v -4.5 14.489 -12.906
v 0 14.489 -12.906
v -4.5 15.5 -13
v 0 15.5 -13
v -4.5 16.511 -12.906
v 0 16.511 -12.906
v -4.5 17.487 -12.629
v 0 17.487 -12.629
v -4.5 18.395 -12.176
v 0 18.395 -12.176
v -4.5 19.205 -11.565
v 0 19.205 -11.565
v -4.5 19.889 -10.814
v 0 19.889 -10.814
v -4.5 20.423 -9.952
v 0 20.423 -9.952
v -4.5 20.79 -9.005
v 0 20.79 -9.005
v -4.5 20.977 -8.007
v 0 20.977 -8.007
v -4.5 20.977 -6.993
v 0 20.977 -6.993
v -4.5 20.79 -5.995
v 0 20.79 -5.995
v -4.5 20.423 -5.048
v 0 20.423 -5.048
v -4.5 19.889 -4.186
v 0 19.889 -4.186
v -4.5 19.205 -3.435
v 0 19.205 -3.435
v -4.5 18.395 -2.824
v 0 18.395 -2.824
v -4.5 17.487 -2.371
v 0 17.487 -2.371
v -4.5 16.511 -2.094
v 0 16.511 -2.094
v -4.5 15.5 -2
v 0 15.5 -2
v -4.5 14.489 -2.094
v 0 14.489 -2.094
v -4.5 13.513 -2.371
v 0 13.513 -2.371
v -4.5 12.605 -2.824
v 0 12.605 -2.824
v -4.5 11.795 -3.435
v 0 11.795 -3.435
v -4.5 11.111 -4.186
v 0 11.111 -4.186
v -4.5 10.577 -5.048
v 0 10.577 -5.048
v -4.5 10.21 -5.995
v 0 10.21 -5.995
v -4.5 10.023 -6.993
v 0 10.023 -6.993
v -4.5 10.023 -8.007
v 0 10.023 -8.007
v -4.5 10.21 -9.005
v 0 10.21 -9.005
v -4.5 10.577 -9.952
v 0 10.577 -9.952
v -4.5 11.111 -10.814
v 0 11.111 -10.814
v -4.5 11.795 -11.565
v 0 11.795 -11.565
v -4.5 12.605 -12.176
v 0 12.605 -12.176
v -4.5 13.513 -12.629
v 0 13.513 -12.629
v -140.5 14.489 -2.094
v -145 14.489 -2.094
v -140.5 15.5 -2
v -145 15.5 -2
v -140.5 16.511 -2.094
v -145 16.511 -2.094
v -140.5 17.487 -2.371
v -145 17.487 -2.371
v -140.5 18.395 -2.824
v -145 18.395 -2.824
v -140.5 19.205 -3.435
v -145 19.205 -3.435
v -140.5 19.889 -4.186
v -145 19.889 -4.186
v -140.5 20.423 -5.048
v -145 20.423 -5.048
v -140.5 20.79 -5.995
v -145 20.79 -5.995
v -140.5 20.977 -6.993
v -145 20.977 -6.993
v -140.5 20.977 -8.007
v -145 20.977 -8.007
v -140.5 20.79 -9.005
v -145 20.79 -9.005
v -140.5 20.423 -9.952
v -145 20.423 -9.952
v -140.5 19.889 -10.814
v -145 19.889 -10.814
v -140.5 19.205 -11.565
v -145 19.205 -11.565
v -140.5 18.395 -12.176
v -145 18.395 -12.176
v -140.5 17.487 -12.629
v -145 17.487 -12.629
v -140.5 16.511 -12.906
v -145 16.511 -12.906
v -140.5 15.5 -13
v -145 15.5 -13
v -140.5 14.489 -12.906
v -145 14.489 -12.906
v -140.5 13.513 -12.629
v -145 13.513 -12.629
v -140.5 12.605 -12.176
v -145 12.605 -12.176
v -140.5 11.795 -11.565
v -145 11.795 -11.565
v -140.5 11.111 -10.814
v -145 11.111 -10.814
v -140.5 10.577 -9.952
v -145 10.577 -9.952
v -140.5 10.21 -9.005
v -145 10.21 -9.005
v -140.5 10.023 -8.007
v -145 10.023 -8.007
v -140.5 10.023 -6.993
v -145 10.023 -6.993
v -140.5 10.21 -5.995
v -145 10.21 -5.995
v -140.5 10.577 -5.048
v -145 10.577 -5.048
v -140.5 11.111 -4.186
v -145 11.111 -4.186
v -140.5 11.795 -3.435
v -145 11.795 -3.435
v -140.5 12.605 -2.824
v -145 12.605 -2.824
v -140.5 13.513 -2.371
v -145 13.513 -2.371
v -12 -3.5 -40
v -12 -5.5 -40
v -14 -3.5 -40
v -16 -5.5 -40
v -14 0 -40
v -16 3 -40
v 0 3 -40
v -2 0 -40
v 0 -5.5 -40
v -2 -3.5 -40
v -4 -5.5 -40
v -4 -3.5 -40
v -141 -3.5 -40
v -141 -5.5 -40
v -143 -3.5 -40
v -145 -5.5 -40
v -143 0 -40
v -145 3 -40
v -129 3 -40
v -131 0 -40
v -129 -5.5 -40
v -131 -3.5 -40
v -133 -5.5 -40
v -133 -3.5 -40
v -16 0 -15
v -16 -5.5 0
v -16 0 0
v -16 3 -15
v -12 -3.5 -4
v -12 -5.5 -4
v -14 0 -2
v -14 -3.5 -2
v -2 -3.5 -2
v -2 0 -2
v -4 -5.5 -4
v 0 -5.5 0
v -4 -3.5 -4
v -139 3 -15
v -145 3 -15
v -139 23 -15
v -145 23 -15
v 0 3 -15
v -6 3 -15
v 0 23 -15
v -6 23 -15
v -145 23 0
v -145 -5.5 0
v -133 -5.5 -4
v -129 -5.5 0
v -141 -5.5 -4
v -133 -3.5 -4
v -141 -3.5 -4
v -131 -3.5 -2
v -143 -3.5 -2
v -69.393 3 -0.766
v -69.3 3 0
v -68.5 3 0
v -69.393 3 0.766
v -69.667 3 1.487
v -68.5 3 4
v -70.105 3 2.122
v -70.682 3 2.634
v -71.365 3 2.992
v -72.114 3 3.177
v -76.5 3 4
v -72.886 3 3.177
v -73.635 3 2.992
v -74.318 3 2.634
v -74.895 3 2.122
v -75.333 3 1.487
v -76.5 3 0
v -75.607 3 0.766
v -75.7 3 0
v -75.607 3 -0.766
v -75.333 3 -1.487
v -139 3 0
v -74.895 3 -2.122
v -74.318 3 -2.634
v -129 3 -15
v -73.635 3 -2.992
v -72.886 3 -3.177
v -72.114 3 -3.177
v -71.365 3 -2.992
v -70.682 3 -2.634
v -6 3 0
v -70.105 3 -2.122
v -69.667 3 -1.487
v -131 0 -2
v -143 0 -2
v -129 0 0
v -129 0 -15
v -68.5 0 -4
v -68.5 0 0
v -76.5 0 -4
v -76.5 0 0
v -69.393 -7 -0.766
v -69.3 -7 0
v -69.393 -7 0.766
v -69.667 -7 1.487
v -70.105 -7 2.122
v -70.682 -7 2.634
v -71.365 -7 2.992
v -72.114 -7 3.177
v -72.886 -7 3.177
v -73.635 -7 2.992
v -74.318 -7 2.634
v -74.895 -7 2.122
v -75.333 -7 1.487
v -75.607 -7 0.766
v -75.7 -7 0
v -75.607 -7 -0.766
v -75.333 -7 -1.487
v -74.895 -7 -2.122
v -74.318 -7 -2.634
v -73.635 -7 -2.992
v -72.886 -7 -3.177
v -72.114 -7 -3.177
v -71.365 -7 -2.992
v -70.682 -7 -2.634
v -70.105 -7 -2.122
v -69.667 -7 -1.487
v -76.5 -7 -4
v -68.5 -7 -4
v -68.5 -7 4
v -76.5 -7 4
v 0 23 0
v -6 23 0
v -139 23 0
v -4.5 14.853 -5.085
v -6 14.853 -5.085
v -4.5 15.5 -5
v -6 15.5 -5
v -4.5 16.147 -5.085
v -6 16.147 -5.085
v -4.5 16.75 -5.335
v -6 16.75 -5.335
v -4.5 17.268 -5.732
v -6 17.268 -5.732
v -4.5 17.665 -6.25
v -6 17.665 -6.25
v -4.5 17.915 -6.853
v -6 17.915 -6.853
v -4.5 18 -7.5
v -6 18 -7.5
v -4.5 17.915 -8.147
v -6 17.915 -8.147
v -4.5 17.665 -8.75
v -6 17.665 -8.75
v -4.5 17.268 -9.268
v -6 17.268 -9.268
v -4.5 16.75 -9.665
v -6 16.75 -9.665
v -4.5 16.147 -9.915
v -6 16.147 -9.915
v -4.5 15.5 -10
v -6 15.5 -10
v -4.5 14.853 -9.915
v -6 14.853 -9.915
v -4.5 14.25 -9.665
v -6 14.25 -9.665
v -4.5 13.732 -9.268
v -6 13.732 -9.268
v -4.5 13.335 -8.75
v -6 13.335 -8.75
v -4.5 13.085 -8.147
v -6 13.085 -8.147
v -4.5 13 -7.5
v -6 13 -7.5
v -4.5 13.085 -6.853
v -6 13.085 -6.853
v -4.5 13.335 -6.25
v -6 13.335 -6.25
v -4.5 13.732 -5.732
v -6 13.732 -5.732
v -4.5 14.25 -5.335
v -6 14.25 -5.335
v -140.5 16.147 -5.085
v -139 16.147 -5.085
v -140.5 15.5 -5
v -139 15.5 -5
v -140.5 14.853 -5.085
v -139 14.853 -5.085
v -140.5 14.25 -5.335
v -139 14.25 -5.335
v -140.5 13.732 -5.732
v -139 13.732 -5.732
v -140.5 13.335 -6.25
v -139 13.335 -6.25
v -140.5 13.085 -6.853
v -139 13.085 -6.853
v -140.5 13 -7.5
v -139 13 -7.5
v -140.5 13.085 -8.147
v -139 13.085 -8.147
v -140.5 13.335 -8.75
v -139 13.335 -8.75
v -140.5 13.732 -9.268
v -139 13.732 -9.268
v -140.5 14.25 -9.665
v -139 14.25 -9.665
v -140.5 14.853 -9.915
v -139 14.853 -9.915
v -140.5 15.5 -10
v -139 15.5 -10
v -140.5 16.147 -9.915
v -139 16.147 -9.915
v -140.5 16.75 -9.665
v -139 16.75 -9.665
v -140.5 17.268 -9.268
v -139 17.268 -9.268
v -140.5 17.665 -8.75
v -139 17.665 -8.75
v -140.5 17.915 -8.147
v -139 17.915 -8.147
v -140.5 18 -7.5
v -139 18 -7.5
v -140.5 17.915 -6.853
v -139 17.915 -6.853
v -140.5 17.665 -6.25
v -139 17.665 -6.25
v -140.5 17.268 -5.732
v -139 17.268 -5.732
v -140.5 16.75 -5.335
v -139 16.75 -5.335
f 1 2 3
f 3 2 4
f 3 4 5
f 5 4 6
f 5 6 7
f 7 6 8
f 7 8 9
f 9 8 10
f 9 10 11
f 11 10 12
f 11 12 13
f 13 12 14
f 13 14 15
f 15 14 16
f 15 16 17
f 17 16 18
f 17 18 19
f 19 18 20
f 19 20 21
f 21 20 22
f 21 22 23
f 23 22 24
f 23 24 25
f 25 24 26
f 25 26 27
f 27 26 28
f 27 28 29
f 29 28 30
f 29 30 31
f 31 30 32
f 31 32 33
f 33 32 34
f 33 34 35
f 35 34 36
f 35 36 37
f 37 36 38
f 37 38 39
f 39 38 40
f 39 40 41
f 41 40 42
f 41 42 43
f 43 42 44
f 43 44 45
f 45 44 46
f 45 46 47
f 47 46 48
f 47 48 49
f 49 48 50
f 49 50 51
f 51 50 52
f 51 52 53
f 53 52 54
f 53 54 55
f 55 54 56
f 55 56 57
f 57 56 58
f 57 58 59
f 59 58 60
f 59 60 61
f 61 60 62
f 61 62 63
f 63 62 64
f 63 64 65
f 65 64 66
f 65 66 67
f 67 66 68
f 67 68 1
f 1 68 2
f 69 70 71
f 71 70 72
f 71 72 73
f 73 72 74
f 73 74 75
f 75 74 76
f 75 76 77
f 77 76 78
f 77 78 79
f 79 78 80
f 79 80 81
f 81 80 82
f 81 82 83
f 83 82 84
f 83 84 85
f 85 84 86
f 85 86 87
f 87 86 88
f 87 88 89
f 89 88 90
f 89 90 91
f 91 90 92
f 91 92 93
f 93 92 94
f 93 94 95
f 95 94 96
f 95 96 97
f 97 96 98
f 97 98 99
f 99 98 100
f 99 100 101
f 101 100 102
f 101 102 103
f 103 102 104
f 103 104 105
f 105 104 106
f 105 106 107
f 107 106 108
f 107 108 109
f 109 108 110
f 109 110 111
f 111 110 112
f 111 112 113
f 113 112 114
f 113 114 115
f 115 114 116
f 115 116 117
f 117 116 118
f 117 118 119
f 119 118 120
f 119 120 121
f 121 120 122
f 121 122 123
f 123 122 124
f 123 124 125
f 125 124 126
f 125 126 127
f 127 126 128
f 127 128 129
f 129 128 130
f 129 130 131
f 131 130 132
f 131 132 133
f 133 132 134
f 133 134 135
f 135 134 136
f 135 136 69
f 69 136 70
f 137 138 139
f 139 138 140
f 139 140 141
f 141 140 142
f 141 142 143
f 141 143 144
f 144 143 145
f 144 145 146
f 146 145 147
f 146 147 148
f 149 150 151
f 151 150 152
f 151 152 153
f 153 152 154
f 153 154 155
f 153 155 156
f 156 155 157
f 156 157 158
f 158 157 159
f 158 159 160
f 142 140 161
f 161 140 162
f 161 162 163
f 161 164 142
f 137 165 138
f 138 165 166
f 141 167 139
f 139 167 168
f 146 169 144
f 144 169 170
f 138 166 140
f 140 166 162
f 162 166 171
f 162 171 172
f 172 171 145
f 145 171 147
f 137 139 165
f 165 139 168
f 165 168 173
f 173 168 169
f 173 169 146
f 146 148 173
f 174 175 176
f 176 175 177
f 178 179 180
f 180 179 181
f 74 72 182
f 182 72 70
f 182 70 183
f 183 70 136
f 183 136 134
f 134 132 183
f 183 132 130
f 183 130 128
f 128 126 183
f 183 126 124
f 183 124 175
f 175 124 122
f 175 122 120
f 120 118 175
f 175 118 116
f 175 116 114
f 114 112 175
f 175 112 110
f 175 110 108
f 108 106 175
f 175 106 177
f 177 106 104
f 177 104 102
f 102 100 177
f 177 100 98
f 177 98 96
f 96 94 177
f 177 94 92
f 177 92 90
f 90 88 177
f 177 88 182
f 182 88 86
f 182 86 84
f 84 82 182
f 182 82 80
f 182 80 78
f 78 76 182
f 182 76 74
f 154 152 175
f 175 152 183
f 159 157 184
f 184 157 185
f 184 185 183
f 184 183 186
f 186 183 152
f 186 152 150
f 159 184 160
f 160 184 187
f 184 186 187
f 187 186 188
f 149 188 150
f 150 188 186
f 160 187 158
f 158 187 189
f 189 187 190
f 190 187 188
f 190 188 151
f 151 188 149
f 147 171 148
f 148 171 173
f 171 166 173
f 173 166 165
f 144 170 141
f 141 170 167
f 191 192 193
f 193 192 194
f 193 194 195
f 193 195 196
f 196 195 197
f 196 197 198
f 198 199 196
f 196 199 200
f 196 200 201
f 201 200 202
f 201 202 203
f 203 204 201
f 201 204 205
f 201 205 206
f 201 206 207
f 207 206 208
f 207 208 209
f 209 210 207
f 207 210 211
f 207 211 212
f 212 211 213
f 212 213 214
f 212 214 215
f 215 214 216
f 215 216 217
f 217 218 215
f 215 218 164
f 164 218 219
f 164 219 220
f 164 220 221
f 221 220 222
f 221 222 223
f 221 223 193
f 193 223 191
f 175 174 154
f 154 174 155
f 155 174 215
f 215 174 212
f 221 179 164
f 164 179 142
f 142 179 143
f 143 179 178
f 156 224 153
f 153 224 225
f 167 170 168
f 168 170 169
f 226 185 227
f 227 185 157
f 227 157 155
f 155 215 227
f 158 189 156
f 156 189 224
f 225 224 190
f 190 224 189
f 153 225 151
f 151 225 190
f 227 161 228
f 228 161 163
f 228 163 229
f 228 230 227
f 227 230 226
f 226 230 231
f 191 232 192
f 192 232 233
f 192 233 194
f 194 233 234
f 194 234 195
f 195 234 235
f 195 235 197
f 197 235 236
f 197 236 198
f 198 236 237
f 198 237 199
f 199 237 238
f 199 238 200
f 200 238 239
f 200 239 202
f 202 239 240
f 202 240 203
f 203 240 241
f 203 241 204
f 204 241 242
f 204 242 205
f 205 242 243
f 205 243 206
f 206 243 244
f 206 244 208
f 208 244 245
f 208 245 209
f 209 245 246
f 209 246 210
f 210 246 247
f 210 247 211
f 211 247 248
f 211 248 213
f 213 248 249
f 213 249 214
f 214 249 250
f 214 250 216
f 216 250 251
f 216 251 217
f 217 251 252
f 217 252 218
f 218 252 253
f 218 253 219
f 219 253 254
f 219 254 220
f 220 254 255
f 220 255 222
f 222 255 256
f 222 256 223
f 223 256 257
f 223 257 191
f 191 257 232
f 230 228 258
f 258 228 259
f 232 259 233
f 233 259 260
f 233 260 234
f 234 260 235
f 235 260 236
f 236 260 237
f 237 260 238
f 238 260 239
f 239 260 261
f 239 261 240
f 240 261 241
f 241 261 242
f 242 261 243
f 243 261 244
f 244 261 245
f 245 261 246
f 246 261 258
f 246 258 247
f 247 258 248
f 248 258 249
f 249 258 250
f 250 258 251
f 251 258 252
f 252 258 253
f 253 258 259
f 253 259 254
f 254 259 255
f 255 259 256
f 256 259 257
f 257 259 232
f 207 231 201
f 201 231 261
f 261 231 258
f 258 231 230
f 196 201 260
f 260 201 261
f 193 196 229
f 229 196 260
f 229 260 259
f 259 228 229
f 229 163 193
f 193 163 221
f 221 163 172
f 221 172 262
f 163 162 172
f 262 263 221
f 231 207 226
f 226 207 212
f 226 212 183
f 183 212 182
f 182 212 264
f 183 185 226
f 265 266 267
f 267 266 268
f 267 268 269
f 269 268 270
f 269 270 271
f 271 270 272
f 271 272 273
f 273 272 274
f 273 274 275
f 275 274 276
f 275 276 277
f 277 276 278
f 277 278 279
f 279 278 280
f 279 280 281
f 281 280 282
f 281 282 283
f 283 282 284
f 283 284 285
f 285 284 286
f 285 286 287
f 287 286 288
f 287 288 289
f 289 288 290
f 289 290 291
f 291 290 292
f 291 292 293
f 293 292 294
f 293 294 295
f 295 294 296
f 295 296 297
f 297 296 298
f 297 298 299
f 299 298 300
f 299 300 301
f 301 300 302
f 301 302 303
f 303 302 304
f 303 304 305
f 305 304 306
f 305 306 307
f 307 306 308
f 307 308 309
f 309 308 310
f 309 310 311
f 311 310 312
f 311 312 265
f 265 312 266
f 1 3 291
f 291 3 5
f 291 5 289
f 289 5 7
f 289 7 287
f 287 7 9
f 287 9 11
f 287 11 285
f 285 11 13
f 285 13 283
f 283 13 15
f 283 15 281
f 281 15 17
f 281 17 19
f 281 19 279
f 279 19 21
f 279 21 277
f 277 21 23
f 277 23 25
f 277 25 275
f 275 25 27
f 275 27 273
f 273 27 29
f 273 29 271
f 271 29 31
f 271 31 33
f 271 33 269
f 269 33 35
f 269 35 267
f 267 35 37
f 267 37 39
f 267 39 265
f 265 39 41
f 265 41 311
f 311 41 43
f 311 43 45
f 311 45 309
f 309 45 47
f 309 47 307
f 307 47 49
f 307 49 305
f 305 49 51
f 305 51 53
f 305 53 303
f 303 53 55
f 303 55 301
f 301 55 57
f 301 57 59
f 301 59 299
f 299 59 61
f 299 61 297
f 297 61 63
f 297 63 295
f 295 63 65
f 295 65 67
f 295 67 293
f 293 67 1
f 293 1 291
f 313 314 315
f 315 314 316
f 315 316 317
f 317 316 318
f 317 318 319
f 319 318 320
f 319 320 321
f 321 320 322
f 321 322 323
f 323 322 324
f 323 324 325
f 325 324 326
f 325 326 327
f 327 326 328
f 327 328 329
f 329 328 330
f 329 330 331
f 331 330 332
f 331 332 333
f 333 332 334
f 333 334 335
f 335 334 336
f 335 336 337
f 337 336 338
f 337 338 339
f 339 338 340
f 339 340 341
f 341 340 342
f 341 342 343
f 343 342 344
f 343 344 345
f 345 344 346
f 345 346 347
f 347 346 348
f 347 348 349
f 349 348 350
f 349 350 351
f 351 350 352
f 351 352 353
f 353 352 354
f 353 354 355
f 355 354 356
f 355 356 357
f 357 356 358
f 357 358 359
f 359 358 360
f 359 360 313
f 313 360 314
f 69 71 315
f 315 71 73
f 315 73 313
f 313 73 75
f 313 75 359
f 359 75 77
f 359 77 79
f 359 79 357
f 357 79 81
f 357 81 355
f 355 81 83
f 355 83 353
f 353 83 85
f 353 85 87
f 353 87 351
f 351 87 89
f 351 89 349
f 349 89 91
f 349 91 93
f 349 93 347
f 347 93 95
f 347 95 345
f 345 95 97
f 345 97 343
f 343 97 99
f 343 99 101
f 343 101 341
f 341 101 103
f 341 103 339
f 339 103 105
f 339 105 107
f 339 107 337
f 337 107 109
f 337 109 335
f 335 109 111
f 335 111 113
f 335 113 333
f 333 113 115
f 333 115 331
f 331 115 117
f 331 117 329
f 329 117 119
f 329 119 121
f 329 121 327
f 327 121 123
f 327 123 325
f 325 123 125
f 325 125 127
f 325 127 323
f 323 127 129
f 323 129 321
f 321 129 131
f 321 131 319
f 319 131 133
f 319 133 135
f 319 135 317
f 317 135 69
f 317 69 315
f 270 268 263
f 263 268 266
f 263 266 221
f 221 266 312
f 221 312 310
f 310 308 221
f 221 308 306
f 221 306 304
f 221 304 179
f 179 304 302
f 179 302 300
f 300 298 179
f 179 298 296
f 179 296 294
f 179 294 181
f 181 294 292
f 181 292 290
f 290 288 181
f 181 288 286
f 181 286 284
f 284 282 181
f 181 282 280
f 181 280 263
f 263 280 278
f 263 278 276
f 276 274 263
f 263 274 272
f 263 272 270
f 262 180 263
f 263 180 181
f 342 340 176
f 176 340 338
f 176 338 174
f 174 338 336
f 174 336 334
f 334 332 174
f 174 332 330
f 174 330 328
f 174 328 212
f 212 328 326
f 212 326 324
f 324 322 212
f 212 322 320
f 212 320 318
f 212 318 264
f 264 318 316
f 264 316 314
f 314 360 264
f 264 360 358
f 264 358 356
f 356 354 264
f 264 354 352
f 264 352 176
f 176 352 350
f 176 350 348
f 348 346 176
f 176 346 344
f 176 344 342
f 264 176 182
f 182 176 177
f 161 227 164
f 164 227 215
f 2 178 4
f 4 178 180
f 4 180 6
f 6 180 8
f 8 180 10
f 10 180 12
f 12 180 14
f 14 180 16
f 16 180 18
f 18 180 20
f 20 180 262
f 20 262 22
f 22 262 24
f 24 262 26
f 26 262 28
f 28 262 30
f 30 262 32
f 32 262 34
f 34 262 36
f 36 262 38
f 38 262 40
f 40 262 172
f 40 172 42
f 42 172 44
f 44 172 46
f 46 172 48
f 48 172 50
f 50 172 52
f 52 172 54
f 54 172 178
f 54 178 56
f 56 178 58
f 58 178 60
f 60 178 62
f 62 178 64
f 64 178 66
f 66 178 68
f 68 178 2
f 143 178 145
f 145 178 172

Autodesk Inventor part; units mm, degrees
ref_plane "YZ Plane" through (0, 0, 0) normal (1, 0, 0) x (0, 1, 0)
ref_plane "XZ Plane" through (0, 0, 0) normal (0, 1, 0) x (-1, 0, 0)
ref_plane "XY Plane" through (0, 0, 0) normal (0, 0, 1) x (1, 0, 0)
sketch "Sketch1" plane through (0, 0, 0) normal (0, 1, 0) x (-1, 0, 0)
  line L0 (0, 0) -> (145, 0)
  line L1 (145, 0) -> (145, -15)
  line L2 (145, -15) -> (0, -15)
  line L3 (0, -15) -> (0, 0)
  dimension "d0" = 145
  dimension "d1" = 15
extrude "Extrusion1" add sketch "Sketch1" along normal blind 3
sketch "Sketch2" plane through (0, 3, 0) normal (0, 1, 0) x (1, 0, 0)
  line L0 (-145, 0) -> (0, 0) projected
  line L1 (0, 15) -> (-145, 15) projected
  line L2 (-145, 0) -> (-139, 0)
  line L3 (-139, 0) -> (-139, 15)
  line L4 (-139, 15) -> (-145, 15)
  line L5 (-145, 15) -> (-145, 0)
  line L6 (0, 0) -> (-6, 0)
  line L7 (-6, 0) -> (-6, 15)
  line L8 (-6, 15) -> (0, 15)
  line L9 (0, 15) -> (0, 0)
  dimension "d4" = 6
  dimension "d5" = 6
extrude "Extrusion2" add sketch "Sketch2" along normal blind 20 contours L5 L1 L3 L0 | L7 L1 L9 L0
sketch "Sketch3" plane through (0, 0, 0) normal (1, 0, 0) x (0, 0, -1)
  line L0 (0, 3) -> (15, 3) construction
  line L1 (7.5, 3) -> (7.5, 15.5) construction
  circle A0 centre (7.5, 15.5) radius 5
  point P0 (0, 0)
  dimension "d8" = 12.5
  dimension "d9" = 10
extrude "Extrusion3" cut sketch "Sketch3" against normal blind 156
sketch "Sketch4" plane through (-139, 3, 0) normal (1, 0, 0) x (0, 0, -1)
  circle A0 centre (7.5, 12.5) radius 5 projected
  circle A1 centre (7.5, 12.5) radius 5
  circle A2 centre (7.5, 12.5) radius 5 projected
  circle A3 centre (7.5, 12.5) radius 2.5
  point P0 (0, -3)
  dimension "d12" = 5
extrude "Extrusion4" add sketch "Sketch4" against normal blind 1.5
sketch "Sketch5" plane through (-6, 3, -15) normal (-1, 0, 0) x (0, 0, 1)
  circle A0 centre (7.5, 12.5) radius 2.5 projected
  circle A1 centre (7.5, 12.5) radius 5
  circle A2 centre (7.5, 12.5) radius 2.4999
  point P0 (15, -3)
extrude "Extrusion5" add sketch "Sketch5" against normal blind 1.5
sketch "Sketch6" plane through (0, 3, 0) normal (0, 1, 0) x (1, 0, 0)
  line L0 (0, 0) -> (-145, 0) projected
  line L1 (-72.5, 0) -> (-76.5, 0)
  line L2 (-76.5, 0) -> (-76.5, -4)
  line L3 (-76.5, -4) -> (-72.5, -4)
  line L4 (-72.5, -4) -> (-72.5, 0)
  line L5 (-72.5, 0) -> (-68.5, 0)
  line L6 (-68.5, 0) -> (-68.5, -4)
  line L7 (-68.5, -4) -> (-72.5, -4)
  line L8 (-72.5, -4) -> (-72.5, 0)
  dimension "d17" = 4
  dimension "d18" = 4
  dimension "d19" = 4
extrude "Extrusion6" add sketch "Sketch6" against normal blind 3
sketch "Sketch7" plane through (0, 3, 0) normal (0, 1, 0) x (1, 0, 0)
  circle A0 centre (-72.5, 0) radius 3.2
  line L0 (-68.5, 0) -> (-68.5, -4) projected
  line L1 (-68.5, -4) -> (-76.5, -4)
  line L2 (-76.5, -4) -> (-76.5, 4)
  line L3 (-76.5, 4) -> (-68.5, 4)
  line L4 (-68.5, 4) -> (-68.5, -4)
  point P0 (0, 0)
  dimension "d22" = 6.4
  dimension "d23" = 8
extrude "Extrusion7" add sketch "Sketch7" against normal blind 10
sketch "Sketch8" plane through (-72.5, 0, 0) normal (0, -1, 0) x (1, 0, 0)
  point P0 (72.5, 0)
sketch "Sketch9" plane through (-72.5, 0, 0) normal (0, -1, 0) x (1, 0, 0)
  circle A0 centre (0, 0) radius 3.2
  point P0 (72.5, 0)
extrude "Extrusion8" cut sketch "Sketch9" against normal blind 7.5
sketch "Sketch10" plane through (0, 0, 0) normal (0, -1, 0) x (1, 0, 0)
  line L0 (0, 0) -> (0, -15) construction
  line L1 (0, 0) -> (-16, 0) construction
  line L2 (-16, 0) -> (-16, -25) construction
  line L3 (-16, -25) -> (0, -25) construction
  line L4 (0, -25) -> (0, 0) construction
  line L5 (-145, -15) -> (-145, 0) construction
  line L6 (-145, 0) -> (-129, 0) construction
  line L7 (-129, 0) -> (-129, -25) construction
  line L8 (-129, -25) -> (-145, -25) construction
  line L9 (-145, -25) -> (-145, 0) construction
  line L10 (0, -25) -> (-2, -25)
  line L11 (-2, -25) -> (-2, -2)
  line L12 (-2, -2) -> (-14, -2)
  line L13 (-14, -2) -> (-14, -25)
  line L14 (-16, -25) -> (-16, 0)
  line L15 (-68.5, 0) -> (-6, 0) projected
  line L16 (-6, 0) -> (0, 0) projected
  line L17 (0, 0) -> (-16, 0)
  line L18 (0, -25) -> (0, 0)
  line L19 (0, -2.5) -> (-4.5, -2.5) projected
  line L20 (-129, -25) -> (-129, 0)
  line L21 (-145, 0) -> (-139, 0) projected
  line L22 (-145, 0) -> (-145, -25)
  line L23 (-145, -25) -> (-143, -25)
  line L24 (-143, -25) -> (-143, -2)
  line L25 (-143, -2) -> (-131, -2)
  line L26 (-131, -2) -> (-131, -25)
  line L27 (-129, -25) -> (-131, -25)
  line L28 (-14, -25) -> (-16, -25)
  line L29 (-129, 0) -> (-145, 0)
  dimension "d28" = 16
  dimension "d29" = 25
  dimension "d30" = 16
  dimension "d31" = 25
  dimension "d32" = 2
  dimension "d33" = 23
  dimension "d34" = 12
  dimension "d35" = 2
  dimension "d36" = 23
  dimension "d37" = 12
extrude "Extrusion9" add sketch "Sketch10" along normal blind 3.5
sketch "Sketch11" plane through (0, 0, 0) normal (0, 1, 0) x (1, 0, 0)
  line L0 (0, 25) -> (0, 0) projected
  line L1 (-16, 0) -> (-16, 25) projected
  line L2 (0, 25) -> (-16, 25)
  line L3 (-16, 25) -> (-16, 15.0002)
  line L4 (-16, 15.0002) -> (0, 15.0002)
  line L5 (0, 15.0002) -> (0, 25)
  line L6 (-131, 25) -> (-129, 25) projected
  line L7 (-145, 0) -> (-145, 25) projected
  line L8 (-129, 25) -> (-145, 25)
  line L9 (-145, 25) -> (-145, 15.0002)
  line L10 (-145, 15.0002) -> (-129, 15.0002)
  line L11 (-129, 15.0002) -> (-129, 25)
extrude "Extrusion10" add sketch "Sketch11" along normal blind 3
sketch "Sketch12" plane through (0, -3.5, 0) normal (0, -1, 0) x (1, 0, 0)
  line L0 (0, -25) -> (0, 0) projected
  line L1 (0, 0) -> (-16, 0) projected
  line L2 (0, -25) -> (-4, -25)
  line L3 (-4, -25) -> (-4, 0)
  line L4 (-4, 0) -> (0, 0)
  line L5 (0, 0) -> (0, -25)
  line L6 (-16, 0) -> (-16, -25) projected
  line L7 (0, 0) -> (-16, 0)
  line L8 (-16, 0) -> (-16, -4)
  line L9 (-16, -4) -> (0, -4)
  line L10 (0, -4) -> (0, 0)
  line L11 (-16, -25) -> (-12, -25)
  line L12 (-12, -25) -> (-12, 0)
  line L13 (-12, 0) -> (-16, 0)
  line L14 (-16, 0) -> (-16, -25)
  line L15 (-129, 0) -> (-145, 0) projected
  line L16 (-129, -25) -> (-133, -25)
  line L17 (-133, -25) -> (-133, 0)
  line L18 (-133, 0) -> (-129, 0)
  line L19 (-129, 0) -> (-129, -25)
  line L20 (-145, -25) -> (-143, -25) projected
  line L21 (-145, -25) -> (-141, -25)
  line L22 (-141, -25) -> (-141, 0)
  line L23 (-141, 0) -> (-145, 0)
  line L24 (-145, 0) -> (-145, -25)
  line L25 (-129, 0) -> (-145, 0)
  line L26 (-145, 0) -> (-145, -4)
  line L27 (-145, -4) -> (-129, -4)
  line L28 (-129, -4) -> (-129, 0)
  dimension "d42" = 4
  dimension "d43" = 4
  dimension "d44" = 4
  dimension "d45" = 4
  dimension "d46" = 4
extrude "Extrusion11" add sketch "Sketch12" along normal blind 2
sketch "Sketch13" plane through (-2, 0, -25) normal (0, 0, -1) x (-1, 0, 0)
  line L0 (-2, 3) -> (14, 3) projected
  line L1 (2, -5.5) -> (-2, -5.5) projected
  line L2 (-2, 3) -> (0, 3)
  line L3 (0, 3) -> (0, -5.5)
  line L4 (0, -5.5) -> (-2, -5.5)
  line L5 (-2, -5.5) -> (-2, 3)
  line L6 (0, 0) -> (0, -3.5) projected
  line L7 (2, -5.5) -> (0, -5.5)
  line L8 (0, -5.5) -> (0, -3.5)
  line L9 (0, -3.5) -> (2, -3.5)
  line L10 (2, -3.5) -> (2, -5.5)
  line L11 (14, -5.5) -> (10, -5.5) projected
  line L12 (10, -3.5) -> (14, -3.5)
  line L13 (14, -3.5) -> (14, -5.5)
  line L14 (14, -5.5) -> (10, -5.5)
  line L15 (10, -5.5) -> (10, -3.5)
  line L16 (66.5, 3) -> (4, 3) projected
  line L17 (14, -3.5) -> (12, -3.5)
  line L18 (12, -3.5) -> (12, 3)
  line L19 (12, 3) -> (14, 3)
  line L20 (14, 3) -> (14, -3.5)
  line L21 (0, 0) -> (12, 0) projected
  line L22 (12, 3) -> (0, 3)
  line L23 (0, 3) -> (0, 0)
  line L24 (0, 0) -> (12, 0)
  line L25 (12, 0) -> (12, 3)
  line L26 (127, 0) -> (127, 3) projected
  line L27 (143, 3) -> (143, -5.5) projected
  line L28 (127, 3) -> (143, 3)
  line L29 (143, 3) -> (143, 0)
  line L30 (143, 0) -> (127, 0)
  line L31 (127, 0) -> (127, 3)
  line L32 (143, -5.5) -> (139, -5.5) projected
  line L33 (143, 0) -> (141, 0)
  line L34 (141, 0) -> (141, -5.5)
  line L35 (141, -5.5) -> (143, -5.5)
  line L36 (143, -5.5) -> (143, 0)
  line L37 (141, -3.5) -> (139, -3.5) projected
  line L38 (139, -3.5) -> (141, -3.5)
  line L39 (141, -3.5) -> (141, -5.5)
  line L40 (141, -5.5) -> (139, -5.5)
  line L41 (139, -5.5) -> (139, -3.5)
  line L42 (127, 0) -> (14, 0) projected
  line L43 (131, -5.5) -> (127, -5.5) projected
  line L44 (127, 0) -> (129, 0)
  line L45 (129, 0) -> (129, -5.5)
  line L46 (129, -5.5) -> (127, -5.5)
  line L47 (127, -5.5) -> (127, 0)
  line L48 (131, -3.5) -> (131, -5.5) projected
  line L49 (131, -3.5) -> (129, -3.5)
  line L50 (129, -3.5) -> (129, -5.5)
  line L51 (129, -5.5) -> (131, -5.5)
  line L52 (131, -5.5) -> (131, -3.5)
  point P0 (-2, 0)
extrude "Extrusion12" add sketch "Sketch13" along normal blind 15 and the other way blind 16.5
sketch "Sketch14" plane through (-145, 3, -15) normal (-1, 0, 0) x (0, 0, 1)
  circle A0 centre (7.5, 12.5) radius 2.5 projected
  circle A1 centre (7.5, 12.5) radius 5.5
  point P0 (15, -3)
  dimension "d53" = 11
extrude "Extrusion13" cut sketch "Sketch14" against normal blind 4.5
sketch "Sketch15" plane through (0, 3, -15) normal (1, 0, 0) x (0, 0, -1)
  circle A0 centre (-7.5, 12.5) radius 5.5 projected
  circle A1 centre (-7.5, 12.5) radius 5.5
  point P0 (-15, -3)
extrude "Extrusion14" cut sketch "Sketch15" against normal blind 4.5
properties part number "frontAxelHolder 9-1"
